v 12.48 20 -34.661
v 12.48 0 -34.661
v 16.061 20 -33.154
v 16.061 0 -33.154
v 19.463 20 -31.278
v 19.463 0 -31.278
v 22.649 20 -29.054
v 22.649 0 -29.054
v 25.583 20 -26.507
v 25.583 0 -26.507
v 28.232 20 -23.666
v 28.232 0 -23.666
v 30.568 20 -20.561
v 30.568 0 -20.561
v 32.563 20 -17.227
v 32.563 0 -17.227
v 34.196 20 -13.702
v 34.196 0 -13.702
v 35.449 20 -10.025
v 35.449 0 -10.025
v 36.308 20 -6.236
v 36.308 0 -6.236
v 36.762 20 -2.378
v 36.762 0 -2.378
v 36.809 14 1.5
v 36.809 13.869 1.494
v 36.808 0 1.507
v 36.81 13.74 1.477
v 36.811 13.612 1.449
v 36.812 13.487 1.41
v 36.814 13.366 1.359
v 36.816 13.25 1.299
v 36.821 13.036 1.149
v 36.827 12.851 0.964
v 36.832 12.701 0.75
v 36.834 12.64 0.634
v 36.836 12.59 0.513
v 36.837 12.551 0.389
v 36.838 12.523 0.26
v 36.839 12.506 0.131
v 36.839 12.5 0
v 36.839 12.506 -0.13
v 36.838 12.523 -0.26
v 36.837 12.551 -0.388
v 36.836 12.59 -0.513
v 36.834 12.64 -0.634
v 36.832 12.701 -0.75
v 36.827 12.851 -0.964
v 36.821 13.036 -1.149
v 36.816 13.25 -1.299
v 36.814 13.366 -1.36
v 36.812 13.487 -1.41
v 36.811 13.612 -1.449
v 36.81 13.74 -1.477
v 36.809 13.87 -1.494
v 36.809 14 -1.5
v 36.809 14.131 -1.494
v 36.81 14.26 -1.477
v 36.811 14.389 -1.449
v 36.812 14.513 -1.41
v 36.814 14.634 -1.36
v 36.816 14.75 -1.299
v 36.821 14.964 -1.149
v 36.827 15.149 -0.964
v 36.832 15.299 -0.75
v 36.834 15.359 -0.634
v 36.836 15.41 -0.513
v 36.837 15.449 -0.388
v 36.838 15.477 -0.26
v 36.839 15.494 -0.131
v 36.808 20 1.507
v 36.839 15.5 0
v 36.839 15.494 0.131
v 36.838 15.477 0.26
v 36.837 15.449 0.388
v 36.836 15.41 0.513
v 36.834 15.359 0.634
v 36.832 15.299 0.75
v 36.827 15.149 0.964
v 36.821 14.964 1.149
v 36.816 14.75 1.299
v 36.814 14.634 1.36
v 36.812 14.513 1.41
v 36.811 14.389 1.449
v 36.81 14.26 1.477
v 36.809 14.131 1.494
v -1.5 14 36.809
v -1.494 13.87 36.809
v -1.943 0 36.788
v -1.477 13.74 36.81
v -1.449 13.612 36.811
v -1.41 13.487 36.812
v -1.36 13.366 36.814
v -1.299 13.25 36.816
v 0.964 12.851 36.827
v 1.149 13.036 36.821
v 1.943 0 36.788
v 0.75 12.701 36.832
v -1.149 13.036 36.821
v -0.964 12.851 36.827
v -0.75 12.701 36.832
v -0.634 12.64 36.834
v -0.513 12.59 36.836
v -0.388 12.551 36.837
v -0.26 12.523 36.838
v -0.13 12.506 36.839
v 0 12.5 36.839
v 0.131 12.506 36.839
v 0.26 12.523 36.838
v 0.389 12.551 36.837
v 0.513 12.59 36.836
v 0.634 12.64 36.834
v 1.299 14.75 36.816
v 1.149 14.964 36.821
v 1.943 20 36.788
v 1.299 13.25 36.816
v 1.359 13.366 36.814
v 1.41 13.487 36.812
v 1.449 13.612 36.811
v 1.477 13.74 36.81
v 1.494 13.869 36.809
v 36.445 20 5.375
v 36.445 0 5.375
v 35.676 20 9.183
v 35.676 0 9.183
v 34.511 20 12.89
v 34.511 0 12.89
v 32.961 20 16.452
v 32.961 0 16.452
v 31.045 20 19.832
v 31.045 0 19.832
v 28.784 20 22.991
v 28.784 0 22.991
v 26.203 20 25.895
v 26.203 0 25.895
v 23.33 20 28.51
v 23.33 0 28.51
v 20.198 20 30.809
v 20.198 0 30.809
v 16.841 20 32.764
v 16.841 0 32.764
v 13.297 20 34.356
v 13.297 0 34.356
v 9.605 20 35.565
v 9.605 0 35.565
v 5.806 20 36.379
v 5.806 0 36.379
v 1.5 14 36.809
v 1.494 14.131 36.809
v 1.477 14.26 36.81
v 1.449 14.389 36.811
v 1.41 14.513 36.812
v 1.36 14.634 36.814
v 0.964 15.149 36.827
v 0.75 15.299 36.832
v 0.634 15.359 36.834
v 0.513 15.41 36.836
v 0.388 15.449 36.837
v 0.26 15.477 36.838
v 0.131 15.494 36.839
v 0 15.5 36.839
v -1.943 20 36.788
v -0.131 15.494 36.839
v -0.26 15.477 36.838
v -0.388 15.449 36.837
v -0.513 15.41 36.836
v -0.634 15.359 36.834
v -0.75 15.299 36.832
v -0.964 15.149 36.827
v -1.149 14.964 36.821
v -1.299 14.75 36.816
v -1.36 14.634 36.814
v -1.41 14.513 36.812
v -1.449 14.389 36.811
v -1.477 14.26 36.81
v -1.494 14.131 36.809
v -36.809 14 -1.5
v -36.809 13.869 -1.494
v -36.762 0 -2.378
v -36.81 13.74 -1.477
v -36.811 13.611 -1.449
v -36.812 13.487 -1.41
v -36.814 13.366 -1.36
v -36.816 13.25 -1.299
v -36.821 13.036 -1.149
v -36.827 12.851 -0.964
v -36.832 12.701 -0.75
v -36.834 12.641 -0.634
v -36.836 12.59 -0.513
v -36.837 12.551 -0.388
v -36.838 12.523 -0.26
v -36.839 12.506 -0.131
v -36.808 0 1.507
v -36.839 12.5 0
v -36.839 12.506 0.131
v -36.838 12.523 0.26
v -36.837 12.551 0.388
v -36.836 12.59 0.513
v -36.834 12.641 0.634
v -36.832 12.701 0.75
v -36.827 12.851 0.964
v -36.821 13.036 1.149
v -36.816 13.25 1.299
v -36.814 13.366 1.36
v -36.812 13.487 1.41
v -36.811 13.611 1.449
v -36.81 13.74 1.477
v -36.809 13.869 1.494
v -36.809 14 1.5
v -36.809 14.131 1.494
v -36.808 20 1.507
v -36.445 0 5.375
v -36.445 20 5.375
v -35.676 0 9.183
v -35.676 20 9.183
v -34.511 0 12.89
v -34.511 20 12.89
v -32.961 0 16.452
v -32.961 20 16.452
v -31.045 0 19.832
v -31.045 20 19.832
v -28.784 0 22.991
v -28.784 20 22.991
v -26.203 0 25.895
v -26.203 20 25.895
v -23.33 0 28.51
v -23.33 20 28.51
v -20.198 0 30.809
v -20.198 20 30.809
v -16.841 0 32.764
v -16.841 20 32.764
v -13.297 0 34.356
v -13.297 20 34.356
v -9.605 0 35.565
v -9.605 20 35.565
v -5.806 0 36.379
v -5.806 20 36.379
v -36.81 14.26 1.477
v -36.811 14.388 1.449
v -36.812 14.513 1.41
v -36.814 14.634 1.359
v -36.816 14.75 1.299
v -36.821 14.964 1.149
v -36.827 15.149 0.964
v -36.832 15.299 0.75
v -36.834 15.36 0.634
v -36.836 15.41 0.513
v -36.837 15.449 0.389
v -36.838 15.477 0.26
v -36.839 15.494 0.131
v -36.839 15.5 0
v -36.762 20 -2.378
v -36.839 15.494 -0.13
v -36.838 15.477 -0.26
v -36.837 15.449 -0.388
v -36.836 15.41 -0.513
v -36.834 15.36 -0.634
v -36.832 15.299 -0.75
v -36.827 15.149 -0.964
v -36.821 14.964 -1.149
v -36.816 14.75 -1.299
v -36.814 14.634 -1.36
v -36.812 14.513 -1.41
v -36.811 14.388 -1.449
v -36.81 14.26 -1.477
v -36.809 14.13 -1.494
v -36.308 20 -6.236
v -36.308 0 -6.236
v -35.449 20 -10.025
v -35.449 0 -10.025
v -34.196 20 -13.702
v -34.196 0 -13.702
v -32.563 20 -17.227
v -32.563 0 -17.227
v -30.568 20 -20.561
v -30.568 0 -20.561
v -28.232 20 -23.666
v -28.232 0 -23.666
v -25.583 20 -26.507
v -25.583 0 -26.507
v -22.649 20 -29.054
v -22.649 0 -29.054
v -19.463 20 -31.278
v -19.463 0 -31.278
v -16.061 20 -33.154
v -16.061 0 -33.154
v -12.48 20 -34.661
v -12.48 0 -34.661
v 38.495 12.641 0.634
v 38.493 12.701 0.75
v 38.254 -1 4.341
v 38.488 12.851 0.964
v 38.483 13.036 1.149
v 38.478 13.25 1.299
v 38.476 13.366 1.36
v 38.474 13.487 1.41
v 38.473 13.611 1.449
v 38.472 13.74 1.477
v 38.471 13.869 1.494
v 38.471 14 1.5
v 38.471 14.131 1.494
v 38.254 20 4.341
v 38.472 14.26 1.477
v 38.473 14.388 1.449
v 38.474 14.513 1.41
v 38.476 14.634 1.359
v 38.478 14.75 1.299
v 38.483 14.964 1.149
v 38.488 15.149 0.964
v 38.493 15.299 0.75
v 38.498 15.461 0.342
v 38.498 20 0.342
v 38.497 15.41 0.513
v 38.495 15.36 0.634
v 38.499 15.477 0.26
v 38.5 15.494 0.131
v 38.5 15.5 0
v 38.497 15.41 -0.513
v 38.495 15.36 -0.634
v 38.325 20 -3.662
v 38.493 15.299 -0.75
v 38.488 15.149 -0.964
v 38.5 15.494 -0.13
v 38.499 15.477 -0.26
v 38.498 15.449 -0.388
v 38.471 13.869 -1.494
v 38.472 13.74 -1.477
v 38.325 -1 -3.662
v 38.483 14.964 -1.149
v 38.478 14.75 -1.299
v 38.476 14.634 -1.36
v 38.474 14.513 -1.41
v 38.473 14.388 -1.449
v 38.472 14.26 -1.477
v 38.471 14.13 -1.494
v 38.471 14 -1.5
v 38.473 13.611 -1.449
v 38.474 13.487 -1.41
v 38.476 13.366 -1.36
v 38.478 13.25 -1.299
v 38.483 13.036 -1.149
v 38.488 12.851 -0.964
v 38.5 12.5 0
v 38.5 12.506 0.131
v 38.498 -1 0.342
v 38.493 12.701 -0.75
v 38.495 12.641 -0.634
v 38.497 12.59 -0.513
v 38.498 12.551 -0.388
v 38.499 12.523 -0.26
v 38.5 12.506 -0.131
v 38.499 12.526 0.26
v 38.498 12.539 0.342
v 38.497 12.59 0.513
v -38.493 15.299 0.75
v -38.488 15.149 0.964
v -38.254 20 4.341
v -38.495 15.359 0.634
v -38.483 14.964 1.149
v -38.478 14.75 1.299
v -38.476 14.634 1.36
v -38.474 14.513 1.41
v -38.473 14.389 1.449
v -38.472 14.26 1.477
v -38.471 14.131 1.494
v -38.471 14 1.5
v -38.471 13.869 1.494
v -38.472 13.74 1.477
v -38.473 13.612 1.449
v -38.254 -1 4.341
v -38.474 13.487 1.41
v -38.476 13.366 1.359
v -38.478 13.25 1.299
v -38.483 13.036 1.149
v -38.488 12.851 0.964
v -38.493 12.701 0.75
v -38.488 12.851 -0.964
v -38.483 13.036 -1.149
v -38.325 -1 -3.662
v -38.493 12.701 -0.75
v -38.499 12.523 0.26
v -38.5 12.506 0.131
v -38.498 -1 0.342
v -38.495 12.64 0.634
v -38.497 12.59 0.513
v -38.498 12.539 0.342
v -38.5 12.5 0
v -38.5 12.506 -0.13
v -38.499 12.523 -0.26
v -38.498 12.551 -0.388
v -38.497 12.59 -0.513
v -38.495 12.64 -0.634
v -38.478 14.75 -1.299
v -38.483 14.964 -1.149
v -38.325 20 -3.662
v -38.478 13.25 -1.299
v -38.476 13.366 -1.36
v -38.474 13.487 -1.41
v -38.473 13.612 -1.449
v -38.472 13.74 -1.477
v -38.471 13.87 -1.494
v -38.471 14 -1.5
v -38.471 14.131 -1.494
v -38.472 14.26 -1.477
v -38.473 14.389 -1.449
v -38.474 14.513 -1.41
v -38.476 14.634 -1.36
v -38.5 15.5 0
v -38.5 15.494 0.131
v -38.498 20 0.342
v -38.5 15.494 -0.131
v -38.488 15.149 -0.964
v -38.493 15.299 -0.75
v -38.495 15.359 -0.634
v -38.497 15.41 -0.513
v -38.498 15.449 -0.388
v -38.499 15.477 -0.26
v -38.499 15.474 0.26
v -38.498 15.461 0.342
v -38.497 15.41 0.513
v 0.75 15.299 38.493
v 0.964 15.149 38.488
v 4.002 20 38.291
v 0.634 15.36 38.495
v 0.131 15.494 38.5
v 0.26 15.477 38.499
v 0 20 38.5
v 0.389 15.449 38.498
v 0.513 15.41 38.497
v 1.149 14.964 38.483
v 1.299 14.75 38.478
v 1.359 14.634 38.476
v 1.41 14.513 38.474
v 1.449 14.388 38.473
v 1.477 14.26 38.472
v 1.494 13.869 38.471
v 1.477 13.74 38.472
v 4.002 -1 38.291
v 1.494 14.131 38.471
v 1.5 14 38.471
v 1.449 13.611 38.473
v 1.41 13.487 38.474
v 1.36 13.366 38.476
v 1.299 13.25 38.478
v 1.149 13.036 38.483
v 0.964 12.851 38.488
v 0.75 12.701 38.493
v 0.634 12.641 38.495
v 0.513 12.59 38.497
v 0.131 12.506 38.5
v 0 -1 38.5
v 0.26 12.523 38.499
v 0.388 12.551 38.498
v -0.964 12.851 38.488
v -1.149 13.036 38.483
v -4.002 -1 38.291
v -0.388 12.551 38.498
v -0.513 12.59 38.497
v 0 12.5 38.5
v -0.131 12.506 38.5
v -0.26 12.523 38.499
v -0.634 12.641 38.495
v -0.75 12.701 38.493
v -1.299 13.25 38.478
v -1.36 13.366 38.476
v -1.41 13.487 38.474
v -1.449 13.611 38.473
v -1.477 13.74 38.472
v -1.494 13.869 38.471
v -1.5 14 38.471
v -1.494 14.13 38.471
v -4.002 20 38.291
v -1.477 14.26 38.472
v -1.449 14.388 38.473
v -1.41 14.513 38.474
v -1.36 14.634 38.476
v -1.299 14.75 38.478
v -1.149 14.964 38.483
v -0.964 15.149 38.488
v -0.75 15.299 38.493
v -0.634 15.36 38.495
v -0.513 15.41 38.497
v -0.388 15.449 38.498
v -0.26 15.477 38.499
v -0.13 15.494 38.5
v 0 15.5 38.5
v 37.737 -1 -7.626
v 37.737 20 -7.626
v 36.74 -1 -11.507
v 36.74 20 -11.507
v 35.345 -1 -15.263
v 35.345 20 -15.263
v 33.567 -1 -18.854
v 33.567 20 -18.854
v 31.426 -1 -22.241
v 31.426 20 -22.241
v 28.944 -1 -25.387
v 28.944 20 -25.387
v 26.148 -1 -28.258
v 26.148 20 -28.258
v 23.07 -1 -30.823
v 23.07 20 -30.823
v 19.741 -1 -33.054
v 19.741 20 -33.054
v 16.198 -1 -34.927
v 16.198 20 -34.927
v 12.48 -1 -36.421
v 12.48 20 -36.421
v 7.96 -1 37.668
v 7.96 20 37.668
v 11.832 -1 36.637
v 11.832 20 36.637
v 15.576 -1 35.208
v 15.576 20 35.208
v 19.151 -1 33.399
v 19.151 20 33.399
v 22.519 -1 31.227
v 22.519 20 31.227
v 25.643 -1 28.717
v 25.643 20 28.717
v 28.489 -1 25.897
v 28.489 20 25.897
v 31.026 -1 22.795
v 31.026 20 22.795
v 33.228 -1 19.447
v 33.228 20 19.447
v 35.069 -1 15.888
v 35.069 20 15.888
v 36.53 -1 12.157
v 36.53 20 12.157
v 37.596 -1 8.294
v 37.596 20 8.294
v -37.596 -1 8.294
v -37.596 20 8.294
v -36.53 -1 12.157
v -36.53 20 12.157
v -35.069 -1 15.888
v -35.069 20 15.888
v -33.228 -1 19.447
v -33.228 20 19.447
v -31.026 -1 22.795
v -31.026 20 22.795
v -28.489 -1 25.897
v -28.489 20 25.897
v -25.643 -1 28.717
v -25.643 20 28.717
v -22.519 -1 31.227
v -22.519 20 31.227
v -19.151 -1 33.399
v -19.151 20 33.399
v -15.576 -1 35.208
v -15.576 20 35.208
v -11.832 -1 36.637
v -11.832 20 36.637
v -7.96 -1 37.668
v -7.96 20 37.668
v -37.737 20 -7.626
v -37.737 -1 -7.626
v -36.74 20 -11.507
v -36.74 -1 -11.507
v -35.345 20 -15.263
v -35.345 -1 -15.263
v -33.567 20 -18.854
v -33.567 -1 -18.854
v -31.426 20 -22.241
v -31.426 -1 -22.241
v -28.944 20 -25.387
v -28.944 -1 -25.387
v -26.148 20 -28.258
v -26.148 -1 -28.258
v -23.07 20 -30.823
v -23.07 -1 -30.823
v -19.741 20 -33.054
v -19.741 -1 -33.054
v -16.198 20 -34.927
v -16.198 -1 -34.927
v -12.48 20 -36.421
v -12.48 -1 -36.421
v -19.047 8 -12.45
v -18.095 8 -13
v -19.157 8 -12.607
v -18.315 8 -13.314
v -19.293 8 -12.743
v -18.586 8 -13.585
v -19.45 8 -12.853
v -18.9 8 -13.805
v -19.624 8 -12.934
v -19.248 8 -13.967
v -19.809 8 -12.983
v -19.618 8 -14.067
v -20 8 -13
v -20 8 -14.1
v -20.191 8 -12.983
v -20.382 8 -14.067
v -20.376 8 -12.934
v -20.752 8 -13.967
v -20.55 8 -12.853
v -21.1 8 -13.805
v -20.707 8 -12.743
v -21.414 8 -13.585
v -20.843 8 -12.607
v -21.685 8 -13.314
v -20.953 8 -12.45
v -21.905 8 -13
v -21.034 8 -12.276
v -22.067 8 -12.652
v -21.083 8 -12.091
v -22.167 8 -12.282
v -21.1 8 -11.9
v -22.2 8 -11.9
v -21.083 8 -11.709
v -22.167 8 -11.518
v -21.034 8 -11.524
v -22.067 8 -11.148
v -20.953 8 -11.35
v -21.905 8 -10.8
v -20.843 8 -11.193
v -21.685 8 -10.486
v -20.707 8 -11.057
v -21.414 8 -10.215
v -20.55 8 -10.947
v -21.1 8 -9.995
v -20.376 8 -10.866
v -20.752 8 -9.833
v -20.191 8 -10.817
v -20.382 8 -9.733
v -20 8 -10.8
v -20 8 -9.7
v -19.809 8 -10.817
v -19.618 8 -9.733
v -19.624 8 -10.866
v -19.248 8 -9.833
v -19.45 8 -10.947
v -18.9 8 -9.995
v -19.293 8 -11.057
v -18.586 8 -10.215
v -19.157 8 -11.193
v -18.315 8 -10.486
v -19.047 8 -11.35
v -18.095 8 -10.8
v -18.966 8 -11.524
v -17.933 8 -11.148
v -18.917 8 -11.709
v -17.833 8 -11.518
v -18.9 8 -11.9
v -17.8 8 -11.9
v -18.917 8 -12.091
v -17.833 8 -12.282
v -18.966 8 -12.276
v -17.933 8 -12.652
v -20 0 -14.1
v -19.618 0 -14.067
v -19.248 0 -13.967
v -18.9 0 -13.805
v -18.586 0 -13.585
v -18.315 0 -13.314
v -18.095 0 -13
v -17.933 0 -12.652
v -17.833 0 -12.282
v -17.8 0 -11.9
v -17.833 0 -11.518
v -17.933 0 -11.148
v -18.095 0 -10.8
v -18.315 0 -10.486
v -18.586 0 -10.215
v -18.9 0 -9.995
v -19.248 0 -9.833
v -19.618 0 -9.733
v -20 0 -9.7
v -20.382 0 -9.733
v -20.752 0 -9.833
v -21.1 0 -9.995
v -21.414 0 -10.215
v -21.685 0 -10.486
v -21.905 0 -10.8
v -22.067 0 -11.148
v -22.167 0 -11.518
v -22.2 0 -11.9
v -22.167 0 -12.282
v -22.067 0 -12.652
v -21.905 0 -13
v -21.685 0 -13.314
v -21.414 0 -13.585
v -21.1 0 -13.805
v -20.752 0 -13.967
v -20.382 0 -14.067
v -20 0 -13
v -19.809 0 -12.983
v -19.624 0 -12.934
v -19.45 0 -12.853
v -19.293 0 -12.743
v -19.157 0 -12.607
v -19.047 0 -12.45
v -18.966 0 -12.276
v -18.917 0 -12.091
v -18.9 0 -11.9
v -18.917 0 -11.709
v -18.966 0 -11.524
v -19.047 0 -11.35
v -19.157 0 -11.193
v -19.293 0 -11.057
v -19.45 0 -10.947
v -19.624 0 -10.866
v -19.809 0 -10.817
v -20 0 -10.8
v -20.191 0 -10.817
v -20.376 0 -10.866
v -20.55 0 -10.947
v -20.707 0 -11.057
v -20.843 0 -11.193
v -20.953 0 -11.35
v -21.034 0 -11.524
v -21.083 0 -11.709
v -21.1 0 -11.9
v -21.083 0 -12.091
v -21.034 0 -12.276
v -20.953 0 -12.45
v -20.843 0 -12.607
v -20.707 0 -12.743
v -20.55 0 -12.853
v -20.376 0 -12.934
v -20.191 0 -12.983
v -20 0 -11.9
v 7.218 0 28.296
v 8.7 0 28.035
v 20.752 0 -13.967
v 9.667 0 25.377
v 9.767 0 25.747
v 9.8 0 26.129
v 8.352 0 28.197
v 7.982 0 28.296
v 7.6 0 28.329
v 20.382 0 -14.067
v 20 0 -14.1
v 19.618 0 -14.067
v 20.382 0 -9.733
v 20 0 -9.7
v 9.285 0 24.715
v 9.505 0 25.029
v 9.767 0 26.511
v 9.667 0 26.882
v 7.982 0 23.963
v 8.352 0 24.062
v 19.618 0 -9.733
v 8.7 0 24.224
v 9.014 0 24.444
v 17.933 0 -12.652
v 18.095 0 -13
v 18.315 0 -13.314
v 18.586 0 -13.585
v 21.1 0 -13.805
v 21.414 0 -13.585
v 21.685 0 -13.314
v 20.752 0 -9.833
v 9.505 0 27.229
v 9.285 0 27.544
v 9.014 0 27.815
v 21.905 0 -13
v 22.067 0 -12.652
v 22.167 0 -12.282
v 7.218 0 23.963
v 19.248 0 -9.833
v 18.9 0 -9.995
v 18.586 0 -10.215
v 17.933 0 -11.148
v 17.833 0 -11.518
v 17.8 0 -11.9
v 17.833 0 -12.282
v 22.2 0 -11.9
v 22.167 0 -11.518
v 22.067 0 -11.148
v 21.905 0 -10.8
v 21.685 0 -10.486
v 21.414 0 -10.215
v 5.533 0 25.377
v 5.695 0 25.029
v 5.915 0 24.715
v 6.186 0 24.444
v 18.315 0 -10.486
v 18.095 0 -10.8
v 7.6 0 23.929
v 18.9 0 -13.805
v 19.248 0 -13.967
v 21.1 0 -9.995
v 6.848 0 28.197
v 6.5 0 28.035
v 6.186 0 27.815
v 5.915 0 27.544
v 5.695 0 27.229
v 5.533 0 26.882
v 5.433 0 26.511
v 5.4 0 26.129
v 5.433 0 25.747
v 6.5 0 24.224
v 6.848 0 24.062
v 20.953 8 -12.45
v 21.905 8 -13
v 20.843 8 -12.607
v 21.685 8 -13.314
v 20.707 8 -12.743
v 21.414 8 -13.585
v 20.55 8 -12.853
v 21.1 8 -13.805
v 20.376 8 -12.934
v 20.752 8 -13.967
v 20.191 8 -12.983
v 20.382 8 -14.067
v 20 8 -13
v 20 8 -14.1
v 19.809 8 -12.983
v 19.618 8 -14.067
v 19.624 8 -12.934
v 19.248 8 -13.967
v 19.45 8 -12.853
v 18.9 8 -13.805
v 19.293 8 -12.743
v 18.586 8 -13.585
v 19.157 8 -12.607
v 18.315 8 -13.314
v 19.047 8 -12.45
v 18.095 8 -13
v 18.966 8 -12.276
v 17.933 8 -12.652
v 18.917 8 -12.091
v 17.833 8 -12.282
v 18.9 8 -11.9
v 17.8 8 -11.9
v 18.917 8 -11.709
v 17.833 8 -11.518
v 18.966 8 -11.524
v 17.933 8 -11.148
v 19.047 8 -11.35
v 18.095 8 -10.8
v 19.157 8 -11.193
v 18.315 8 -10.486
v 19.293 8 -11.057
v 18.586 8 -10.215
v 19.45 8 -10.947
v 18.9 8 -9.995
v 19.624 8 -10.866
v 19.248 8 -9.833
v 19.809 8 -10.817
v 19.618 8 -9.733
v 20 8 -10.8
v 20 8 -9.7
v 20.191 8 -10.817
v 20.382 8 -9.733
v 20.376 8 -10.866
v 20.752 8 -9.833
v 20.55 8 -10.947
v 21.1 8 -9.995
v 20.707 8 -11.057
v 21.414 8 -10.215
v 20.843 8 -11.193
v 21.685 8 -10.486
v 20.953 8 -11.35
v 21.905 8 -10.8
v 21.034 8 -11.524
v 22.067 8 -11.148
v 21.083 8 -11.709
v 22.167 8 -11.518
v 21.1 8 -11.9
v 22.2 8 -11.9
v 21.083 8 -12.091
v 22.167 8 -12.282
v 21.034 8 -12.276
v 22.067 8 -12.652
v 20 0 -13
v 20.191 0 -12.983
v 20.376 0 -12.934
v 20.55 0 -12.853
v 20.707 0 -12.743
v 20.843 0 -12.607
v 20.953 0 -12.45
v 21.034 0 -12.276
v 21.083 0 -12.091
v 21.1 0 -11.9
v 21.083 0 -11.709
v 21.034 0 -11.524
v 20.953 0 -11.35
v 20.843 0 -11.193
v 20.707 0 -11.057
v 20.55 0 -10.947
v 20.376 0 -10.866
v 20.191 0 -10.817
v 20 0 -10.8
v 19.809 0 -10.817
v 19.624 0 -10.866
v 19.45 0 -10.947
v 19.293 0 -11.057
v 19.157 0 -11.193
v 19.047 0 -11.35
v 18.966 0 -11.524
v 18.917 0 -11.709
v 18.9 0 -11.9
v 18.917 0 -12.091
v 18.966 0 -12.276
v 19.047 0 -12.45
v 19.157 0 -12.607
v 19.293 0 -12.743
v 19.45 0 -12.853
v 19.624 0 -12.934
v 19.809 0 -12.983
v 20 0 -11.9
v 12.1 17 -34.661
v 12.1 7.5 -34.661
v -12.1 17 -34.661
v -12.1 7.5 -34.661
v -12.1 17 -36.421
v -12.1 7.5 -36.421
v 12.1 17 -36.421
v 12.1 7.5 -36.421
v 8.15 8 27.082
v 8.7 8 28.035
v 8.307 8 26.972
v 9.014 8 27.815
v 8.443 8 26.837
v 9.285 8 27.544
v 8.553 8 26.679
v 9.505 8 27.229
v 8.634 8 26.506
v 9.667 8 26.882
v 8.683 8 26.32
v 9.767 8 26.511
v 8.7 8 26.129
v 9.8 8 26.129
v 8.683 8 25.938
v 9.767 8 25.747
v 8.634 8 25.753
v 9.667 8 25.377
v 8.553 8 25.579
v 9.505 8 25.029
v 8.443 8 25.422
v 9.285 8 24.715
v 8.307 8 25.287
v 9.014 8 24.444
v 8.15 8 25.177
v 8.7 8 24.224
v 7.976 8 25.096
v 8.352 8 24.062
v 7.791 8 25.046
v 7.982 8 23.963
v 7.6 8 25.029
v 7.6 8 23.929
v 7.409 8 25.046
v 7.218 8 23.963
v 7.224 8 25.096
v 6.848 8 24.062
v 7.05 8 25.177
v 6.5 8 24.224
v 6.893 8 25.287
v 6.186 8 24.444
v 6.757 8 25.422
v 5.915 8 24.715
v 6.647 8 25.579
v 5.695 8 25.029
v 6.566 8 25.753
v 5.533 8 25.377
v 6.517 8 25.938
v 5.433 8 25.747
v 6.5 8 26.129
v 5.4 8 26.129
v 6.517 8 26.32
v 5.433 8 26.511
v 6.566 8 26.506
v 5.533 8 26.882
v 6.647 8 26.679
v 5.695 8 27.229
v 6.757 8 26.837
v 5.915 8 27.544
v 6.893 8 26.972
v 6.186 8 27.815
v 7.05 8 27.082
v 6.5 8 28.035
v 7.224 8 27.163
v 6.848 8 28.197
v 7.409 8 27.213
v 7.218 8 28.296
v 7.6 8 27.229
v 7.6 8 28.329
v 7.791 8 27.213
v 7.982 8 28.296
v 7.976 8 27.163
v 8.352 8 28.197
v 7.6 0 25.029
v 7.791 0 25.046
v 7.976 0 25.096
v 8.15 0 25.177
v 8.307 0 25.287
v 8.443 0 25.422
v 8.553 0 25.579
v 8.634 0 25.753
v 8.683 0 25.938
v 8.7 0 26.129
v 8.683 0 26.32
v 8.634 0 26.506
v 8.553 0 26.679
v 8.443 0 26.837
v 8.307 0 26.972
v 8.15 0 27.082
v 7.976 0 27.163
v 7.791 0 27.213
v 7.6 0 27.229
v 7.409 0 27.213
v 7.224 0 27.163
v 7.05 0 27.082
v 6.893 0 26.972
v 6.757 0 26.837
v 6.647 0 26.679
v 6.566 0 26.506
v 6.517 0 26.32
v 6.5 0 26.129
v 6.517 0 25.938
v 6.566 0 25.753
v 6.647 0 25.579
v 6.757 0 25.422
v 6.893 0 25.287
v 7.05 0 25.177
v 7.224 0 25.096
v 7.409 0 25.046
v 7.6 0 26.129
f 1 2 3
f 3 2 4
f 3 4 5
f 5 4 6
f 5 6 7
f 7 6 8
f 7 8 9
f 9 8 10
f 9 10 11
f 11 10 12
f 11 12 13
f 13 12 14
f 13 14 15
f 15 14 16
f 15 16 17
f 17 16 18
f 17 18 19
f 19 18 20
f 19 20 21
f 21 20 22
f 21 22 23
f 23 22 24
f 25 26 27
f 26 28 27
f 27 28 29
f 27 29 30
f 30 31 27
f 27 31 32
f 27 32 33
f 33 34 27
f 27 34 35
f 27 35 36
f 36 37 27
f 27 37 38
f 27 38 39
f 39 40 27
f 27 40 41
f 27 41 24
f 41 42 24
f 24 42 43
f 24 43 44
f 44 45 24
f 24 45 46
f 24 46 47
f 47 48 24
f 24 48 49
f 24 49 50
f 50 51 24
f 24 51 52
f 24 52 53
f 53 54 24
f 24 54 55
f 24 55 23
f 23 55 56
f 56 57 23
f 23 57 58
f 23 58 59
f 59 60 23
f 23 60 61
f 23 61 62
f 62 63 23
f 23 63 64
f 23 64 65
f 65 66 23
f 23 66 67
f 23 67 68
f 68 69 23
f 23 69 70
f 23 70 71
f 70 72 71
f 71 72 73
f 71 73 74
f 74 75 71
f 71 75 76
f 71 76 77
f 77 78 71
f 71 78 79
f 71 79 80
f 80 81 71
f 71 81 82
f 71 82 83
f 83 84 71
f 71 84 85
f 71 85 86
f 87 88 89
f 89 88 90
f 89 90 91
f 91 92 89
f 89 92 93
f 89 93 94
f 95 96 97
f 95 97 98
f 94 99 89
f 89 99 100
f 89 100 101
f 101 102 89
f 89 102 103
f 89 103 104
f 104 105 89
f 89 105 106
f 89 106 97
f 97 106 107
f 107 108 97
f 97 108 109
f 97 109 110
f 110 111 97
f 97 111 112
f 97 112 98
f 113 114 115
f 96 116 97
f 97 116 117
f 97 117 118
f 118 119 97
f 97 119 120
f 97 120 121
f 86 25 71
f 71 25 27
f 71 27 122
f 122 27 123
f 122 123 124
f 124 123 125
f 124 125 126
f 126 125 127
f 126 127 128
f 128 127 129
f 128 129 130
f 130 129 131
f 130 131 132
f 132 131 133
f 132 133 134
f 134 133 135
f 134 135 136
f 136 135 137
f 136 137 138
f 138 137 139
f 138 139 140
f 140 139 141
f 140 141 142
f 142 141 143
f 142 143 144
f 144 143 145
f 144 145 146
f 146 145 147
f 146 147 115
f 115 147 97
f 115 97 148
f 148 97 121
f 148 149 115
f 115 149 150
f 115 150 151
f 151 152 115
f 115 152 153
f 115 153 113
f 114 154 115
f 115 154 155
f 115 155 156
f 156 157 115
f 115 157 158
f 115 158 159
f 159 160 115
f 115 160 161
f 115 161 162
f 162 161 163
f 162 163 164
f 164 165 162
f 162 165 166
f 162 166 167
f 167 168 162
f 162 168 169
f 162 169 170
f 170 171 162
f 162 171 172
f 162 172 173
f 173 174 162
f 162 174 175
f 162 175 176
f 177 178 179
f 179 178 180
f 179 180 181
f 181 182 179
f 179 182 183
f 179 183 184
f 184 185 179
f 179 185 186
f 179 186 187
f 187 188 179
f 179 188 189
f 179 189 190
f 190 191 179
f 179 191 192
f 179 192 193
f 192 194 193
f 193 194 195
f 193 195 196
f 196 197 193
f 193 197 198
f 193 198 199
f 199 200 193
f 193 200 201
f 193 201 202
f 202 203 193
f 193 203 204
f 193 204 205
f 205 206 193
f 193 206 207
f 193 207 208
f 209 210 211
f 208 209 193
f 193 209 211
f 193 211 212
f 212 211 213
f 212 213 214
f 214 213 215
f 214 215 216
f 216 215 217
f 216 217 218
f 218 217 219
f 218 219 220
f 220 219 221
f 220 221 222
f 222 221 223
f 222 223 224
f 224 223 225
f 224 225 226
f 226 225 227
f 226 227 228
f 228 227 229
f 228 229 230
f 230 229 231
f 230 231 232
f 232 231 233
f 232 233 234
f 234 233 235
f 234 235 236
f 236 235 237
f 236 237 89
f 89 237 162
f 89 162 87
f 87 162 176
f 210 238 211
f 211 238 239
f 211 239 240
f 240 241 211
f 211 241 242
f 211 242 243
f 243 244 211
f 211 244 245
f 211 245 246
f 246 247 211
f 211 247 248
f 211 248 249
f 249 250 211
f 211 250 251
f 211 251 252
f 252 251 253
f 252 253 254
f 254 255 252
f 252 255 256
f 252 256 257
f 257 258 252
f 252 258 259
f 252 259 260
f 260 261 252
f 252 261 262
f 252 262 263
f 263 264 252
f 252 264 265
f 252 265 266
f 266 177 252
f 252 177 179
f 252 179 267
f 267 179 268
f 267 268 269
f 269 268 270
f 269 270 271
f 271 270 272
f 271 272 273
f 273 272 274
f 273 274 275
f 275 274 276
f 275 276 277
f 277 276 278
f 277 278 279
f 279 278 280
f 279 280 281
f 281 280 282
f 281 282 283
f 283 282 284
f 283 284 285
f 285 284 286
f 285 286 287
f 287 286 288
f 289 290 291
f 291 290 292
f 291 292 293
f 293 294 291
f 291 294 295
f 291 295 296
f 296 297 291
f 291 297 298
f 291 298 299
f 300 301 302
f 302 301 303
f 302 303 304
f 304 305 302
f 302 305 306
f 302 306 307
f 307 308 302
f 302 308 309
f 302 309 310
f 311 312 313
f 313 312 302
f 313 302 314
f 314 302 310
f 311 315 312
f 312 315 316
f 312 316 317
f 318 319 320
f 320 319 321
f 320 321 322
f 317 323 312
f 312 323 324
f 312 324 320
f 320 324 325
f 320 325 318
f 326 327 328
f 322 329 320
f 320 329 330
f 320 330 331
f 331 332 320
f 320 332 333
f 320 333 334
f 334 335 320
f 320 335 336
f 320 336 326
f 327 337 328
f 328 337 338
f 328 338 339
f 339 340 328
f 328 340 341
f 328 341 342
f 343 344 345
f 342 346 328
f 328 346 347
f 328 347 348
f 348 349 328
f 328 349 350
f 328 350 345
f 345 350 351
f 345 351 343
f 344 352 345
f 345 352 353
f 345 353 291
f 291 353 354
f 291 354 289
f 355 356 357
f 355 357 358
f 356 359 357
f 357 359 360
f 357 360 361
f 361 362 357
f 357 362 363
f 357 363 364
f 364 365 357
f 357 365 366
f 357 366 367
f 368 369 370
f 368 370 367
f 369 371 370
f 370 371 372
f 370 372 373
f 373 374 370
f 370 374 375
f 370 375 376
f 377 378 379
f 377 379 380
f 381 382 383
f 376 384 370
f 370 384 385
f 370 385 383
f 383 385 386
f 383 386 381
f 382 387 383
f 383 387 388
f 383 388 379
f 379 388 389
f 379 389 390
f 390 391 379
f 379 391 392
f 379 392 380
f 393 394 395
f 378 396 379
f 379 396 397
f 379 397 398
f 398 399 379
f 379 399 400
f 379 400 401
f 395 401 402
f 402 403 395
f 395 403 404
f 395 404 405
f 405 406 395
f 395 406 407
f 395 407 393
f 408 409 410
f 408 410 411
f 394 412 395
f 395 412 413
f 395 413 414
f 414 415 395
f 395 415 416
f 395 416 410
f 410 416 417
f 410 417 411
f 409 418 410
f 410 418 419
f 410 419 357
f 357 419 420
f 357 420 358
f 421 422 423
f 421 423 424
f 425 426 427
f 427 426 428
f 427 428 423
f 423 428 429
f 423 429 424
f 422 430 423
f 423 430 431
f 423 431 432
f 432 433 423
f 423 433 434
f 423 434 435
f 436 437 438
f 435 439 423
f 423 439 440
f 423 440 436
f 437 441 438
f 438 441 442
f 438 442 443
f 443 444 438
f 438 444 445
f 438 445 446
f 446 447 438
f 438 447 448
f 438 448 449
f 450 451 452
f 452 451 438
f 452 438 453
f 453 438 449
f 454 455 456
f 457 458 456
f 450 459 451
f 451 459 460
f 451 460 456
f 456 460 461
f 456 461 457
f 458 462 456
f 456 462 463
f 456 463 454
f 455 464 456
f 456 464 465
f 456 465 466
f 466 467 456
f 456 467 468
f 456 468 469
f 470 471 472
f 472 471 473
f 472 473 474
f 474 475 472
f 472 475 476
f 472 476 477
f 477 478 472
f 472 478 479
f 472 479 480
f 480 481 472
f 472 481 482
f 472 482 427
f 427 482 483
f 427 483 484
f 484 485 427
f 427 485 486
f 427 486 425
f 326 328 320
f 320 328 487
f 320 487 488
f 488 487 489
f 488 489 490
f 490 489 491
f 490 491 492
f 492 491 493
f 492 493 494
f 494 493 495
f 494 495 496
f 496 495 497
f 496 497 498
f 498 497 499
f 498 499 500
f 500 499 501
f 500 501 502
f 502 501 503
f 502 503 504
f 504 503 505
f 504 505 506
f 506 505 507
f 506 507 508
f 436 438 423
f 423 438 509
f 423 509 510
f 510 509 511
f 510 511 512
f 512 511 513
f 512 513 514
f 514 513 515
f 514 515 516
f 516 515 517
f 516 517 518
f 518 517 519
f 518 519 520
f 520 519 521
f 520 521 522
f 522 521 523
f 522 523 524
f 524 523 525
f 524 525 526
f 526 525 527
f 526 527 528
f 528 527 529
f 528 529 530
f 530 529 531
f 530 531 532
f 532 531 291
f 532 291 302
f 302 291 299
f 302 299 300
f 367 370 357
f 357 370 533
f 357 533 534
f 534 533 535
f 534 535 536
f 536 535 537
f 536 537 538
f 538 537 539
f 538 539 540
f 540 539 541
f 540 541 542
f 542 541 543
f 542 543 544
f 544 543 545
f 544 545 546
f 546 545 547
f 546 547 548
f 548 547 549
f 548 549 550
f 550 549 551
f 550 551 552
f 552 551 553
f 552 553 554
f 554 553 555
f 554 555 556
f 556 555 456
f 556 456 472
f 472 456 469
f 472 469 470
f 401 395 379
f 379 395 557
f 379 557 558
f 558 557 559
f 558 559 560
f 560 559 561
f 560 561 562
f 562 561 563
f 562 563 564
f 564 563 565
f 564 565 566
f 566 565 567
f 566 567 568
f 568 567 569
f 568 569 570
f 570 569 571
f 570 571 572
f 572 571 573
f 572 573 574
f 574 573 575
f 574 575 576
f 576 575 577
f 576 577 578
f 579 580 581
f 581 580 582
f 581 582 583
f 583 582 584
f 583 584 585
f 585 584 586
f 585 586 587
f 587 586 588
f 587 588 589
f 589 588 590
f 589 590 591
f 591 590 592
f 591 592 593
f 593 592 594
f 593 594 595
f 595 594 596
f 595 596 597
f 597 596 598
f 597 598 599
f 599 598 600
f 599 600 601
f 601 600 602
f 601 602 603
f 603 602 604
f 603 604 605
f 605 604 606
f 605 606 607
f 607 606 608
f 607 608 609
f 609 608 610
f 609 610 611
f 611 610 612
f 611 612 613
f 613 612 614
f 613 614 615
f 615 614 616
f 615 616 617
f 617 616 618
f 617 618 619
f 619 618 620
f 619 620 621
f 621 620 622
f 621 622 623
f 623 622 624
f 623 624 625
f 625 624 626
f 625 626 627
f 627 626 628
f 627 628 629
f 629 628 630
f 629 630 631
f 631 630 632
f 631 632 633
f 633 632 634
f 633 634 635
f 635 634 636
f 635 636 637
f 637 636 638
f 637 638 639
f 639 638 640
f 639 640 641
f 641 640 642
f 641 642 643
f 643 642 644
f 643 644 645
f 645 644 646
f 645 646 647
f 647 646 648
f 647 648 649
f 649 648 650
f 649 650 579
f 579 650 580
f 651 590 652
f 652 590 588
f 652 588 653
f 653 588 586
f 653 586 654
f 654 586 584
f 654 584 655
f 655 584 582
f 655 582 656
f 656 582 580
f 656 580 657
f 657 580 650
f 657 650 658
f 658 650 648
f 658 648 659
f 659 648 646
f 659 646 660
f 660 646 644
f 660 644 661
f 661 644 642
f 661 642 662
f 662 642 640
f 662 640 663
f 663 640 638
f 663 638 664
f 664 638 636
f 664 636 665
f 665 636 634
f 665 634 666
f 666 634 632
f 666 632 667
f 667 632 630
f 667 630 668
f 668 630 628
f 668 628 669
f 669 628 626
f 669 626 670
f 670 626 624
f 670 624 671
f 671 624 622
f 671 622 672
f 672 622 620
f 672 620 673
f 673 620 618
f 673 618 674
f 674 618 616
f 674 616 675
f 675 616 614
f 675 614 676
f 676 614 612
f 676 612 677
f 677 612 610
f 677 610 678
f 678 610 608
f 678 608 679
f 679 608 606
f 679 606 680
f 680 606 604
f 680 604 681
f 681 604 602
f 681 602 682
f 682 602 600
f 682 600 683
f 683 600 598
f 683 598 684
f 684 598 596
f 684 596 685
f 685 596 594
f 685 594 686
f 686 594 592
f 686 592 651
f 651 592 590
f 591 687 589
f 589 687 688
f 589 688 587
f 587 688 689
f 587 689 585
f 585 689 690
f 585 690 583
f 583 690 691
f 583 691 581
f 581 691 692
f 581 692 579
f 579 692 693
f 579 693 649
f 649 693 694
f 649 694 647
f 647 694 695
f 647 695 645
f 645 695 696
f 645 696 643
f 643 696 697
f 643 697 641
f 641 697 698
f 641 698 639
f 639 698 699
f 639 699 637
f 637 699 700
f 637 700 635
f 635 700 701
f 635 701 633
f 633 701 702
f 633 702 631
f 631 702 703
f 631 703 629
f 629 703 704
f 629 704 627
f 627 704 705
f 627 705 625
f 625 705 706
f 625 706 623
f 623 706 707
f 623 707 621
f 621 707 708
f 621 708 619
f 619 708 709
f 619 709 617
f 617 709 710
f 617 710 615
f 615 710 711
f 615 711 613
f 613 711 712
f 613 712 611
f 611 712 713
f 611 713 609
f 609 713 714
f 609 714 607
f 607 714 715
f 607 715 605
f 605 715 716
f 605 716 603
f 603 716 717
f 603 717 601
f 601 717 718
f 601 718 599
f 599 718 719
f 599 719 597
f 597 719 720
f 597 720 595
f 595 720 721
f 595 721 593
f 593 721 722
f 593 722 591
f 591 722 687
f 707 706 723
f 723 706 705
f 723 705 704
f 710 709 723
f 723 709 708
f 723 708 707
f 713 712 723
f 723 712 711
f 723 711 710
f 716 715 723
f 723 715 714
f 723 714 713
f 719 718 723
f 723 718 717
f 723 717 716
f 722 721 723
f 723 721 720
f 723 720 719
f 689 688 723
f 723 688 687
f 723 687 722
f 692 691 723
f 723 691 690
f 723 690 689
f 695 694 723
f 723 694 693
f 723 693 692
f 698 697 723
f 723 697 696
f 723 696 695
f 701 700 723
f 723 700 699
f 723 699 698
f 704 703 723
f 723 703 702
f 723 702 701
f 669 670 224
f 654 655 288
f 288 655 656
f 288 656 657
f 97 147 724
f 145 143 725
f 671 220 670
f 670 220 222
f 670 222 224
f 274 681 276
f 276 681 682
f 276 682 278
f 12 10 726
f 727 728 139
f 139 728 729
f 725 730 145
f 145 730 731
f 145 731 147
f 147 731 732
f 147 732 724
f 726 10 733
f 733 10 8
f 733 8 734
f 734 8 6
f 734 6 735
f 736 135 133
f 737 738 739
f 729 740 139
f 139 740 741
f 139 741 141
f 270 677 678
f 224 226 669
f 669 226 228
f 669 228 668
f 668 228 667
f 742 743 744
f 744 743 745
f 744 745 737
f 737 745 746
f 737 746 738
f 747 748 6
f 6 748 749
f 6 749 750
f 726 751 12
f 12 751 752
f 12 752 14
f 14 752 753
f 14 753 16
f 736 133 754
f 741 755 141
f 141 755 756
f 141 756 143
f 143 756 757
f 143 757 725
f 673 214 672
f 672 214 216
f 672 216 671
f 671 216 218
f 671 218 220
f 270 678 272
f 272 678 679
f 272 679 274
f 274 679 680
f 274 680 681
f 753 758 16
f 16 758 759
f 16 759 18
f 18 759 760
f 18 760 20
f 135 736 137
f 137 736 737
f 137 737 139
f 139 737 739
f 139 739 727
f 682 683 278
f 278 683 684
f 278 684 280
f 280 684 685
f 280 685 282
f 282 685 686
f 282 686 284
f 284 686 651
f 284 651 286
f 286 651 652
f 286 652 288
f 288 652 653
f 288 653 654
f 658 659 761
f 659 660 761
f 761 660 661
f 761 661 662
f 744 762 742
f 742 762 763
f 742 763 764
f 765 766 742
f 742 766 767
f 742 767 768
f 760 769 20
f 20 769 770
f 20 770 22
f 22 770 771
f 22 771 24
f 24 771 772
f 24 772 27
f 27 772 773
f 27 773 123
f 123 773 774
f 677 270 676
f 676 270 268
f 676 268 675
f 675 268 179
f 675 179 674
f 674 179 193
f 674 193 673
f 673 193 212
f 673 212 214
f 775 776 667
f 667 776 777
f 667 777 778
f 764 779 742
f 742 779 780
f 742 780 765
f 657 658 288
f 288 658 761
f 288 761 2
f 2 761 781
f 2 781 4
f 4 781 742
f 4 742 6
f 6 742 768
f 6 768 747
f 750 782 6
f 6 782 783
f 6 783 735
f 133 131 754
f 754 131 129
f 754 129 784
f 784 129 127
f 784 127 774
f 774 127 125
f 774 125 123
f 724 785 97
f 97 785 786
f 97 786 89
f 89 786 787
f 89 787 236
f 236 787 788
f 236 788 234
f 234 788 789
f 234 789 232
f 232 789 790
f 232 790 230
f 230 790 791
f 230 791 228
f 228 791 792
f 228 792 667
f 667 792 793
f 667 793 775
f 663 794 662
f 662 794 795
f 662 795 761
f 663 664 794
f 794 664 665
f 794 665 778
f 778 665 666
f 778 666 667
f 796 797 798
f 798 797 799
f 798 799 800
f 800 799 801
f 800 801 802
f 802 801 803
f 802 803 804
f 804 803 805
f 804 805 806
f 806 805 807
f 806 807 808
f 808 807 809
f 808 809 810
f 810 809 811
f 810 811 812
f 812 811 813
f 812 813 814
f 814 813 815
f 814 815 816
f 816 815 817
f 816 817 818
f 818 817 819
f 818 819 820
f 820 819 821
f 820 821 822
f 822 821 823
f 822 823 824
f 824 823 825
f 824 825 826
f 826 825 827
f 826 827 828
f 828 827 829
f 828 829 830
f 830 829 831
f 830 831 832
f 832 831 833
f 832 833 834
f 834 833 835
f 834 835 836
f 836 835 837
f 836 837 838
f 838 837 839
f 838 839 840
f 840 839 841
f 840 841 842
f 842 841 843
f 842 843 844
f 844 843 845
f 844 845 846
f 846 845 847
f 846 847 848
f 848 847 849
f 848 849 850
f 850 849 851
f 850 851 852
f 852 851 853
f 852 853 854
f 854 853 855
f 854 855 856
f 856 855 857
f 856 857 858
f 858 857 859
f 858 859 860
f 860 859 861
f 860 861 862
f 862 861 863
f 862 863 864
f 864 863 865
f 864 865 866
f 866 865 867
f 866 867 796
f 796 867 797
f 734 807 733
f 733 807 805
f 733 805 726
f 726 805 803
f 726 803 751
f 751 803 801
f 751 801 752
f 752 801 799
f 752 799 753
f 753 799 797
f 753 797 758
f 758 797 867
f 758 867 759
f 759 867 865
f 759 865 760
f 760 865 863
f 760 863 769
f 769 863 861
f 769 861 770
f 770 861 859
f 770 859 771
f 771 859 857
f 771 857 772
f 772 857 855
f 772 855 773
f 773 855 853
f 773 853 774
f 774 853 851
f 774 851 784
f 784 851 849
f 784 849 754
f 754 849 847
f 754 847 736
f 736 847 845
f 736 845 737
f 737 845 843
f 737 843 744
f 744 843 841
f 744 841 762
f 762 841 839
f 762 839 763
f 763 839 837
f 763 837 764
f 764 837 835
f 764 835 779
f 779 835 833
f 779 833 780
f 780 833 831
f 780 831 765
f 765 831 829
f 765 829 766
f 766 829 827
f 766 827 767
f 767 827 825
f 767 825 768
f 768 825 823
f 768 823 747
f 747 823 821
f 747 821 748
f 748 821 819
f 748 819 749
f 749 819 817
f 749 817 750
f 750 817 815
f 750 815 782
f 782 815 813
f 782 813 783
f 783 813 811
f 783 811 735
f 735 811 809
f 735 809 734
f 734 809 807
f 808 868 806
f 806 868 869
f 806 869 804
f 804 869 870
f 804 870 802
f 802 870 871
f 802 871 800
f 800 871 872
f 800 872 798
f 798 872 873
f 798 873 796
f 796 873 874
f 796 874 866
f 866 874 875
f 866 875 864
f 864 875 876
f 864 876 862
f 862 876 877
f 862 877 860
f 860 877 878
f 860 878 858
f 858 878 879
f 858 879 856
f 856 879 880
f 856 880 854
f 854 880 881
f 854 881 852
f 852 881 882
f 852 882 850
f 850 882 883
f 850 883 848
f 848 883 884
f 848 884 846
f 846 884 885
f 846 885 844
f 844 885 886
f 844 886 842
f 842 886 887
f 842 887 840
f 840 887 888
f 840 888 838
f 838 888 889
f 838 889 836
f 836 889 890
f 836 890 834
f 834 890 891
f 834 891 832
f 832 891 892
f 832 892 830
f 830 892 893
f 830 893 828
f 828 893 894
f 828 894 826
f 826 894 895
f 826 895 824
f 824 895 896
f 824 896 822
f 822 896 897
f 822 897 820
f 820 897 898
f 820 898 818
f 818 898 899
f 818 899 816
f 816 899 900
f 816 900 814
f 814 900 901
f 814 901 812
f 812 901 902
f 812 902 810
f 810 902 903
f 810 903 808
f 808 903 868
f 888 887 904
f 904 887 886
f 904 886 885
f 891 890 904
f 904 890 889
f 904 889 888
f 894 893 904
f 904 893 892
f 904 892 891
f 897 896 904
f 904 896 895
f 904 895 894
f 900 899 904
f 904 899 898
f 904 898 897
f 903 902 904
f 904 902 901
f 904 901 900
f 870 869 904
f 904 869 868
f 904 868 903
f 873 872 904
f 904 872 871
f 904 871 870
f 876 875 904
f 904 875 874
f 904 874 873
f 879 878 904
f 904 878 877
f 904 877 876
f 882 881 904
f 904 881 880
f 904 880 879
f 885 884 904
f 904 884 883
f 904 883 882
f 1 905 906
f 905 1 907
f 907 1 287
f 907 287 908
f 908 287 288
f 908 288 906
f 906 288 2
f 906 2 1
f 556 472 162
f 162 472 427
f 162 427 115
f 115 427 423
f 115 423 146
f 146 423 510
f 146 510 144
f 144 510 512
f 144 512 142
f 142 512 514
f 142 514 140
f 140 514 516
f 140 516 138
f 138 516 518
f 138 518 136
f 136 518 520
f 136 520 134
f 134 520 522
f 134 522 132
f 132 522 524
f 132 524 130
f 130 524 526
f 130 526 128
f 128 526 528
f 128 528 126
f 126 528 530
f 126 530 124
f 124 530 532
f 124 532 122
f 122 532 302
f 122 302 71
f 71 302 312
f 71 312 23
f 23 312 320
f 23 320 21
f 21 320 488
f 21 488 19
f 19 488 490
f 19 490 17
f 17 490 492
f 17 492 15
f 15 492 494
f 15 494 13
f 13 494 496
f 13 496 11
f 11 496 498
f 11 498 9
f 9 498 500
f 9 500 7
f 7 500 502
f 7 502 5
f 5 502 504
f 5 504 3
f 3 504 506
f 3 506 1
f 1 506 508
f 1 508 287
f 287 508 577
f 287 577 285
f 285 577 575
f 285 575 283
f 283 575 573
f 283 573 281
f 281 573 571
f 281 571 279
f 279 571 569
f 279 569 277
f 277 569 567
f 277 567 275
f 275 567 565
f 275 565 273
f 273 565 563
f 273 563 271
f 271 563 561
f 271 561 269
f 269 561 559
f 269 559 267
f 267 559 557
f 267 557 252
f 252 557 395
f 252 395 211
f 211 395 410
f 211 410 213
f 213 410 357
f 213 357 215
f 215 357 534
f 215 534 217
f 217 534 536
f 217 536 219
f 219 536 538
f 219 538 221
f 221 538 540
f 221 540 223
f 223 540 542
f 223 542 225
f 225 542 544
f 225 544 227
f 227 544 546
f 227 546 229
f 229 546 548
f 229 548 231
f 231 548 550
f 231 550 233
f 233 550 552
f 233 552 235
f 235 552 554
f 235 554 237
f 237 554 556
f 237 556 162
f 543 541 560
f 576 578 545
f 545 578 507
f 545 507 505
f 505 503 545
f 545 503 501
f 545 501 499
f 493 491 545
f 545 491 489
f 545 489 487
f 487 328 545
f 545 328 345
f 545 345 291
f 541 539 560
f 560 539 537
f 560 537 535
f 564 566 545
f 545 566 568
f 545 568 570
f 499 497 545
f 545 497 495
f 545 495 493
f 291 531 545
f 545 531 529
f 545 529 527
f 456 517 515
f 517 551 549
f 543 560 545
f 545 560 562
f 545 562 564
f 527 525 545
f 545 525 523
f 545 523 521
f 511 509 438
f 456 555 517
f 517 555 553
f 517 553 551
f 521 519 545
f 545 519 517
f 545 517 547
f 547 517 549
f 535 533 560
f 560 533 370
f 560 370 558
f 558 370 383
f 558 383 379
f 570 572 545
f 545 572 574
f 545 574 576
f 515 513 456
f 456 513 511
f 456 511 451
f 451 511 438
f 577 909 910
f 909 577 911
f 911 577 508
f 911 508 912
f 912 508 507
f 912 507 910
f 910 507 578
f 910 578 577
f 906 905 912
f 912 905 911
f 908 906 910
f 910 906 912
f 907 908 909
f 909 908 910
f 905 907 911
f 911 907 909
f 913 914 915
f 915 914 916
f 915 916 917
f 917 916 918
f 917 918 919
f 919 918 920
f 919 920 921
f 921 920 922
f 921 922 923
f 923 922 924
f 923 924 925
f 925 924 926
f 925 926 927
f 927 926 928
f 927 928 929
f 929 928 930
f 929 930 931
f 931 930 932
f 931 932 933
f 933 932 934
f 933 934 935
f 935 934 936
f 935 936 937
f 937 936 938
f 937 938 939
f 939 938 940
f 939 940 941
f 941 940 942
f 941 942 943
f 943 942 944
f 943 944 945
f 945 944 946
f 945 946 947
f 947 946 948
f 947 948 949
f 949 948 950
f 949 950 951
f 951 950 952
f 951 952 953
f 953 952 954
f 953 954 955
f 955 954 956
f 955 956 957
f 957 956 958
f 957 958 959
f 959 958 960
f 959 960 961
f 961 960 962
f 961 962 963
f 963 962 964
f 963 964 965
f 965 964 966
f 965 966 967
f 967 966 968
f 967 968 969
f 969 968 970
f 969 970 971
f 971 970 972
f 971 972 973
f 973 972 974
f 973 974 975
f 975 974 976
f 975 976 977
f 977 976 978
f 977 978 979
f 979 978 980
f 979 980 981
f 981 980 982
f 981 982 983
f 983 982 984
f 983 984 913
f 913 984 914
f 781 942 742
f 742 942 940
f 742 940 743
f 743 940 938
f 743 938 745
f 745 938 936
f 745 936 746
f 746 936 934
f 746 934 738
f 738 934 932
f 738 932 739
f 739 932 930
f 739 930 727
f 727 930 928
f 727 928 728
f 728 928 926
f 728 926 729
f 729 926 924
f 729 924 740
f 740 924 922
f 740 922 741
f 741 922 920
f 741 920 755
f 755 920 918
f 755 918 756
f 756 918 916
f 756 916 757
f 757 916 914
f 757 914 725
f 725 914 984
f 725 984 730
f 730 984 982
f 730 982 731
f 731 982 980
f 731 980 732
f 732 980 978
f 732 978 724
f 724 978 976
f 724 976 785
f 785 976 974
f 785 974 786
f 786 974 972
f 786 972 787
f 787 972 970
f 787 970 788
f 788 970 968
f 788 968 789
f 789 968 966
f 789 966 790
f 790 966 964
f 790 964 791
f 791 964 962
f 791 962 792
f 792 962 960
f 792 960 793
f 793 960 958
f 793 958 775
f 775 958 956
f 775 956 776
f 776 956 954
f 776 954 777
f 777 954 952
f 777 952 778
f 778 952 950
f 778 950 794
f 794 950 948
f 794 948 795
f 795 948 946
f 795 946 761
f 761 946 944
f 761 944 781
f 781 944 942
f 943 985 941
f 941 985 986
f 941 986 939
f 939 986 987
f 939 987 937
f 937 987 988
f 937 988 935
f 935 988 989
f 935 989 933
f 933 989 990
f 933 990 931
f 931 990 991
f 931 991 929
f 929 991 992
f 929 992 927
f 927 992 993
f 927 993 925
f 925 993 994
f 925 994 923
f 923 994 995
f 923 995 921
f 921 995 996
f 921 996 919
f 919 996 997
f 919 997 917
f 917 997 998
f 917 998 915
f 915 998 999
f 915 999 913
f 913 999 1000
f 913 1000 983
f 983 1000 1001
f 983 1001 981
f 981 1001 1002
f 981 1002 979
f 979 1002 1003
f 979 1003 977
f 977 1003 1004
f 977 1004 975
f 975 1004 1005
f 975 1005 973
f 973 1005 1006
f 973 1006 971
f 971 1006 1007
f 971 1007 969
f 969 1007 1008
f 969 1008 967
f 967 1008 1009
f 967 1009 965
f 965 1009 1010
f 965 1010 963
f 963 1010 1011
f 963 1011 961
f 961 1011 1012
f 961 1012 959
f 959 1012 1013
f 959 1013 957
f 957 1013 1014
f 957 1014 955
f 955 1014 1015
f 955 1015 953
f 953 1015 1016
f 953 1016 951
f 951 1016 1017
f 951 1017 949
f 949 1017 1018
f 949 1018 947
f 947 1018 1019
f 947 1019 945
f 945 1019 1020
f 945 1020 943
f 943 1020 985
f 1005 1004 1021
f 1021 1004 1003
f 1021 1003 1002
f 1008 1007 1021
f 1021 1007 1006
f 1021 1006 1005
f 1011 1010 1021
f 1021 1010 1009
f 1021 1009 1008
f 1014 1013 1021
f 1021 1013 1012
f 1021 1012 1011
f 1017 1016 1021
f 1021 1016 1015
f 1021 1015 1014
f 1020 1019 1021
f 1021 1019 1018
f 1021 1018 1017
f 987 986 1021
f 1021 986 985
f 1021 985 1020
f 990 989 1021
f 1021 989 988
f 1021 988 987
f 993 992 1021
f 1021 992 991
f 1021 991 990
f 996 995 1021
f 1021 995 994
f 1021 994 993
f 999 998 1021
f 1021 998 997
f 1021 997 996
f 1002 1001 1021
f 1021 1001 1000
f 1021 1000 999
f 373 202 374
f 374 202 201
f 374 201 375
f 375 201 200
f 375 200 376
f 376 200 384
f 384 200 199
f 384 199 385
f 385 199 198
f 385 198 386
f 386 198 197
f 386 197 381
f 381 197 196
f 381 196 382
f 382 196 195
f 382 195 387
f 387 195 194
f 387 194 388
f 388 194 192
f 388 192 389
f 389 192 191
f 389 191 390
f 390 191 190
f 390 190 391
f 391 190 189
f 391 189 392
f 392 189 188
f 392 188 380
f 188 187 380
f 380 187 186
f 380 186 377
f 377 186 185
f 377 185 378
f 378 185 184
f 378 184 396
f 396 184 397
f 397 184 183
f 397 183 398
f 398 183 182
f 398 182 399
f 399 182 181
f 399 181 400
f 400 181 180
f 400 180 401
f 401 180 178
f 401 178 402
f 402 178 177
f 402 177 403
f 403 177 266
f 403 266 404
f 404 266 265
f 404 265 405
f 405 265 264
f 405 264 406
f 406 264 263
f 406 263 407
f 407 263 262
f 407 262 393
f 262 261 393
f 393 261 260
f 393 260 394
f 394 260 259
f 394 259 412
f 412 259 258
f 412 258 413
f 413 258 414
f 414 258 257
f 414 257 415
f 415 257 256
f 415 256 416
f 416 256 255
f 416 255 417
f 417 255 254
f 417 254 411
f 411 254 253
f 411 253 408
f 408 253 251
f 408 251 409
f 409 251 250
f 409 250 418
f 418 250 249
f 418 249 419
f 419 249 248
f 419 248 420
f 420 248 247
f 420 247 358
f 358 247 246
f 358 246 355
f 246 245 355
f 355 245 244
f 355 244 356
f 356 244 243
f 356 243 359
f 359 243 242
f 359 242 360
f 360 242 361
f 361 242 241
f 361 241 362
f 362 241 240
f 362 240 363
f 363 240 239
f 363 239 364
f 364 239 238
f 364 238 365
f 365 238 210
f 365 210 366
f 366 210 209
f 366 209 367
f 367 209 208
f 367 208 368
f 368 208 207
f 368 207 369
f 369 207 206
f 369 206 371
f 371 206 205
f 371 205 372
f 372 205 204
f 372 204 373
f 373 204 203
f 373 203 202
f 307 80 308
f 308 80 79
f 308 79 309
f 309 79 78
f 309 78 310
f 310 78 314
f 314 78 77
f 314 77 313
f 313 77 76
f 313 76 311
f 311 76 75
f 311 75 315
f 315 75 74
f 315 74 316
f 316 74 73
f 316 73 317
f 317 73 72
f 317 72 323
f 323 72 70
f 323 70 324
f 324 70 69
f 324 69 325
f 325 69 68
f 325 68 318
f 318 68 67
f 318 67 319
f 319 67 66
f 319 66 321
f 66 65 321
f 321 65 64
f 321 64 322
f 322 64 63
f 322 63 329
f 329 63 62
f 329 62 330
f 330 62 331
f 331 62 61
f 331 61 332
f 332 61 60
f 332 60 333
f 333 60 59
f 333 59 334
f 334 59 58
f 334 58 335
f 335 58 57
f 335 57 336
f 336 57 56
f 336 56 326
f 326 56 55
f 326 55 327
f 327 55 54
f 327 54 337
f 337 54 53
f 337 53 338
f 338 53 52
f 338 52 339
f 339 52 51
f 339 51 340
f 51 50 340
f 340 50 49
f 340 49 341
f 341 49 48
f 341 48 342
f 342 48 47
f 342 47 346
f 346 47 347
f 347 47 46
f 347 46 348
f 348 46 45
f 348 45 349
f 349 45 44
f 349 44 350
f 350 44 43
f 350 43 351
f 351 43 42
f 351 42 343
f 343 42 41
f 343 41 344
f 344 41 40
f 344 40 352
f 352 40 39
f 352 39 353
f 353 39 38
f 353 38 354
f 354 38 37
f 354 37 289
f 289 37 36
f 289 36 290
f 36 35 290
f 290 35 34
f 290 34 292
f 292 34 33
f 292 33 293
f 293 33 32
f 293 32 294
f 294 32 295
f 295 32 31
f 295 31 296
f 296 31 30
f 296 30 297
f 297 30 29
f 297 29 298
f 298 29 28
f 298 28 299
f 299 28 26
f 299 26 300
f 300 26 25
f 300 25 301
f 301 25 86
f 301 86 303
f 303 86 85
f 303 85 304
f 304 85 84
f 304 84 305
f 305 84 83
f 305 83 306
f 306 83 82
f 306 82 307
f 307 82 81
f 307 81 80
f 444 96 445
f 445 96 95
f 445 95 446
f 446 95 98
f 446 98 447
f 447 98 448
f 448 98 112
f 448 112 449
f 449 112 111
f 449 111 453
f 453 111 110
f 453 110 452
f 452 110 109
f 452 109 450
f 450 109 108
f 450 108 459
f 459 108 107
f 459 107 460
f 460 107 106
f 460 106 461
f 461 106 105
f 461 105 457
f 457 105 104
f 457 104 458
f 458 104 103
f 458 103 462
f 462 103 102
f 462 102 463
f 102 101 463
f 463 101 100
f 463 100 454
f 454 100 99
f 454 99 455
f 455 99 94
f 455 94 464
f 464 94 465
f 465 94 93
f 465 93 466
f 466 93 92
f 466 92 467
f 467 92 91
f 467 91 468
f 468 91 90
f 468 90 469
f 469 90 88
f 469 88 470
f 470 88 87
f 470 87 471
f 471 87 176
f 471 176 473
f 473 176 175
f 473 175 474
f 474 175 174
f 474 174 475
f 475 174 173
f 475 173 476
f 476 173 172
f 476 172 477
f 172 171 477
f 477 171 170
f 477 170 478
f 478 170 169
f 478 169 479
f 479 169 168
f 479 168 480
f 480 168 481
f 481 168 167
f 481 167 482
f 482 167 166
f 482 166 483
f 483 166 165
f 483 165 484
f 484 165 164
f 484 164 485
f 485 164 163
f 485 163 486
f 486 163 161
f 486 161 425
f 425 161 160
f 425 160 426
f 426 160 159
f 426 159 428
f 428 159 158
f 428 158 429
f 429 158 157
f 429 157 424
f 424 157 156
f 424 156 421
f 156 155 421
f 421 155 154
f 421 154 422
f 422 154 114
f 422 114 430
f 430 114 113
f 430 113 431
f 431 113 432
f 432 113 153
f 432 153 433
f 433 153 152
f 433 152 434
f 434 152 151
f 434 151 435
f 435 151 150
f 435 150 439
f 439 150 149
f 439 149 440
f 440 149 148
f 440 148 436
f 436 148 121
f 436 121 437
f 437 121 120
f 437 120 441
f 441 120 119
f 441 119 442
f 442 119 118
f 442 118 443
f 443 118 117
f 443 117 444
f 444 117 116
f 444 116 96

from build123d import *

# Parameters (mm, degrees)
SKETCH1_R               = 2.2
SKETCH1_R_2             = 1.1
BOSS_EXTRUDE3_DEPTH     = 8
BOSS_EXTRUDE3_2_DEPTH   = 8
BOSS_EXTRUDE4_DEPTH     = 20
BOSS_EXTRUDE8_DEPTH     = 1
SKETCH2_W               = 24.2
SKETCH2_H               = 9.5
CUT_EXTRUDE2_DEPTH      = 9
SKETCH1_11_R            = 2.2
SKETCH1_11_R_2          = 1.1
BOSS_EXTRUDE9_DEPTH     = 8
CUT_EXTRUDE3_DEPTH      = 58
CUT_EXTRUDE3_DEPTH_BACK = 52
SKETCH3_R               = 1.5
CUT_EXTRUDE4_DEPTH      = 52
CUT_EXTRUDE4_DEPTH_BACK = 10
SKETCH4_R               = 1.5


with BuildPart() as part:
    # Sketch1 → Boss-Extrude3 (new body)
    with BuildSketch(Plane(origin=(0, 0, 0), x_dir=(1, 0, 0), z_dir=(0, 1, 0))):
        with Locations(Location((-20, 11.9, 0), (0, 0, 270))):
            Circle(SKETCH1_R)
        with Locations(Location((-20, 11.9, 0), (0, 0, 270))):
            Circle(SKETCH1_R_2, mode=Mode.SUBTRACT)
    extrude(amount=BOSS_EXTRUDE3_DEPTH)



with BuildPart() as body_2:
    # Sketch1 → Boss-Extrude3 2 (new body)
    with BuildSketch(Plane(origin=(0, 0, 0), x_dir=(1, 0, 0), z_dir=(0, 1, 0))):
        with Locations(Location((20, 11.9, 0), (0, 0, 270))):
            Circle(SKETCH1_R)
        with Locations(Location((20, 11.9, 0), (0, 0, 270))):
            Circle(SKETCH1_R_2, mode=Mode.SUBTRACT)
    extrude(amount=BOSS_EXTRUDE3_2_DEPTH)


with BuildPart() as body_3:
    # Sketch1<6> → Boss-Extrude4 (new body)
    with BuildSketch(Plane(origin=(0, 0, 0), x_dir=(1, 0, 0), z_dir=(0, 1, 0))):
        with BuildLine():
            Line((12.480384609, 36.42101042), (-12.480384609, 36.42101042))
            ThreePointArc((-12.480384609, 36.42101042), (0, -38.5), (12.480384609, 36.42101042))
        make_face()
        with BuildLine():
            ThreePointArc((-12.480384609, 34.660769231), (0, -36.839230769), (12.480384609, 34.660769231))
            Line((12.480384609, 34.660769231), (-12.480384609, 34.660769231))
        make_face(mode=Mode.SUBTRACT)
    extrude(amount=BOSS_EXTRUDE4_DEPTH)


with BuildPart() as part_1:
    add(part.part)

    add(body_2.part)  # Boss-Extrude8 merges body 2

    add(body_3.part)  # Boss-Extrude8 merges body 3
    # Sketch1<10> → Boss-Extrude8 (add)
    with BuildSketch(Plane(origin=(0, 0, 0), x_dir=(1, 0, 0), z_dir=(0, 1, 0))):
        with BuildLine():
            Line((12.480384609, 36.42101042), (-12.480384609, 36.42101042))
            ThreePointArc((-12.480384609, 36.42101042), (0, -38.5), (12.480384609, 36.42101042))
        make_face()
    extrude(amount=-BOSS_EXTRUDE8_DEPTH)

    # Sketch2 → Cut-Extrude2 (cut)
    with BuildSketch(Plane.XY.offset(-34.660769231)):
        with Locations((0, 12.25)):
            Rectangle(SKETCH2_W, SKETCH2_H)
    extrude(amount=-CUT_EXTRUDE2_DEPTH, mode=Mode.SUBTRACT)

    # Sketch1<11> → Boss-Extrude9 (add)
    with BuildSketch(Plane(origin=(0, 0, 0), x_dir=(1, 0, 0), z_dir=(0, 1, 0))):
        with Locations(Location((7.6, -26.129462263, 0), (0, 0, 270))):
            Circle(SKETCH1_11_R)
        with Locations(Location((7.6, -26.129462263, 0), (0, 0, 270))):
            Circle(SKETCH1_11_R_2, mode=Mode.SUBTRACT)
    extrude(amount=BOSS_EXTRUDE9_DEPTH)

    # Sketch3 → Cut-Extrude3 (cut, two sides: drawn at the far end of the back side and taken through both)
    with BuildSketch(Plane(origin=(0, 0, 0), x_dir=(0, 0, -1), z_dir=(1, 0, 0)).offset(-CUT_EXTRUDE3_DEPTH_BACK)):
        with Locations(Location((0, 14, 0), (0, 0, 180))):
            Circle(SKETCH3_R)
    extrude(amount=CUT_EXTRUDE3_DEPTH + CUT_EXTRUDE3_DEPTH_BACK, mode=Mode.SUBTRACT)

    # Sketch4 → Cut-Extrude4 (cut, two sides: drawn at the far end of the back side and taken through both)
    with BuildSketch(Plane.XY.offset(-CUT_EXTRUDE4_DEPTH_BACK)):
        with Locations((0, 14)):
            Circle(SKETCH4_R)
    extrude(amount=CUT_EXTRUDE4_DEPTH + CUT_EXTRUDE4_DEPTH_BACK, mode=Mode.SUBTRACT)


solid = part_1.part
